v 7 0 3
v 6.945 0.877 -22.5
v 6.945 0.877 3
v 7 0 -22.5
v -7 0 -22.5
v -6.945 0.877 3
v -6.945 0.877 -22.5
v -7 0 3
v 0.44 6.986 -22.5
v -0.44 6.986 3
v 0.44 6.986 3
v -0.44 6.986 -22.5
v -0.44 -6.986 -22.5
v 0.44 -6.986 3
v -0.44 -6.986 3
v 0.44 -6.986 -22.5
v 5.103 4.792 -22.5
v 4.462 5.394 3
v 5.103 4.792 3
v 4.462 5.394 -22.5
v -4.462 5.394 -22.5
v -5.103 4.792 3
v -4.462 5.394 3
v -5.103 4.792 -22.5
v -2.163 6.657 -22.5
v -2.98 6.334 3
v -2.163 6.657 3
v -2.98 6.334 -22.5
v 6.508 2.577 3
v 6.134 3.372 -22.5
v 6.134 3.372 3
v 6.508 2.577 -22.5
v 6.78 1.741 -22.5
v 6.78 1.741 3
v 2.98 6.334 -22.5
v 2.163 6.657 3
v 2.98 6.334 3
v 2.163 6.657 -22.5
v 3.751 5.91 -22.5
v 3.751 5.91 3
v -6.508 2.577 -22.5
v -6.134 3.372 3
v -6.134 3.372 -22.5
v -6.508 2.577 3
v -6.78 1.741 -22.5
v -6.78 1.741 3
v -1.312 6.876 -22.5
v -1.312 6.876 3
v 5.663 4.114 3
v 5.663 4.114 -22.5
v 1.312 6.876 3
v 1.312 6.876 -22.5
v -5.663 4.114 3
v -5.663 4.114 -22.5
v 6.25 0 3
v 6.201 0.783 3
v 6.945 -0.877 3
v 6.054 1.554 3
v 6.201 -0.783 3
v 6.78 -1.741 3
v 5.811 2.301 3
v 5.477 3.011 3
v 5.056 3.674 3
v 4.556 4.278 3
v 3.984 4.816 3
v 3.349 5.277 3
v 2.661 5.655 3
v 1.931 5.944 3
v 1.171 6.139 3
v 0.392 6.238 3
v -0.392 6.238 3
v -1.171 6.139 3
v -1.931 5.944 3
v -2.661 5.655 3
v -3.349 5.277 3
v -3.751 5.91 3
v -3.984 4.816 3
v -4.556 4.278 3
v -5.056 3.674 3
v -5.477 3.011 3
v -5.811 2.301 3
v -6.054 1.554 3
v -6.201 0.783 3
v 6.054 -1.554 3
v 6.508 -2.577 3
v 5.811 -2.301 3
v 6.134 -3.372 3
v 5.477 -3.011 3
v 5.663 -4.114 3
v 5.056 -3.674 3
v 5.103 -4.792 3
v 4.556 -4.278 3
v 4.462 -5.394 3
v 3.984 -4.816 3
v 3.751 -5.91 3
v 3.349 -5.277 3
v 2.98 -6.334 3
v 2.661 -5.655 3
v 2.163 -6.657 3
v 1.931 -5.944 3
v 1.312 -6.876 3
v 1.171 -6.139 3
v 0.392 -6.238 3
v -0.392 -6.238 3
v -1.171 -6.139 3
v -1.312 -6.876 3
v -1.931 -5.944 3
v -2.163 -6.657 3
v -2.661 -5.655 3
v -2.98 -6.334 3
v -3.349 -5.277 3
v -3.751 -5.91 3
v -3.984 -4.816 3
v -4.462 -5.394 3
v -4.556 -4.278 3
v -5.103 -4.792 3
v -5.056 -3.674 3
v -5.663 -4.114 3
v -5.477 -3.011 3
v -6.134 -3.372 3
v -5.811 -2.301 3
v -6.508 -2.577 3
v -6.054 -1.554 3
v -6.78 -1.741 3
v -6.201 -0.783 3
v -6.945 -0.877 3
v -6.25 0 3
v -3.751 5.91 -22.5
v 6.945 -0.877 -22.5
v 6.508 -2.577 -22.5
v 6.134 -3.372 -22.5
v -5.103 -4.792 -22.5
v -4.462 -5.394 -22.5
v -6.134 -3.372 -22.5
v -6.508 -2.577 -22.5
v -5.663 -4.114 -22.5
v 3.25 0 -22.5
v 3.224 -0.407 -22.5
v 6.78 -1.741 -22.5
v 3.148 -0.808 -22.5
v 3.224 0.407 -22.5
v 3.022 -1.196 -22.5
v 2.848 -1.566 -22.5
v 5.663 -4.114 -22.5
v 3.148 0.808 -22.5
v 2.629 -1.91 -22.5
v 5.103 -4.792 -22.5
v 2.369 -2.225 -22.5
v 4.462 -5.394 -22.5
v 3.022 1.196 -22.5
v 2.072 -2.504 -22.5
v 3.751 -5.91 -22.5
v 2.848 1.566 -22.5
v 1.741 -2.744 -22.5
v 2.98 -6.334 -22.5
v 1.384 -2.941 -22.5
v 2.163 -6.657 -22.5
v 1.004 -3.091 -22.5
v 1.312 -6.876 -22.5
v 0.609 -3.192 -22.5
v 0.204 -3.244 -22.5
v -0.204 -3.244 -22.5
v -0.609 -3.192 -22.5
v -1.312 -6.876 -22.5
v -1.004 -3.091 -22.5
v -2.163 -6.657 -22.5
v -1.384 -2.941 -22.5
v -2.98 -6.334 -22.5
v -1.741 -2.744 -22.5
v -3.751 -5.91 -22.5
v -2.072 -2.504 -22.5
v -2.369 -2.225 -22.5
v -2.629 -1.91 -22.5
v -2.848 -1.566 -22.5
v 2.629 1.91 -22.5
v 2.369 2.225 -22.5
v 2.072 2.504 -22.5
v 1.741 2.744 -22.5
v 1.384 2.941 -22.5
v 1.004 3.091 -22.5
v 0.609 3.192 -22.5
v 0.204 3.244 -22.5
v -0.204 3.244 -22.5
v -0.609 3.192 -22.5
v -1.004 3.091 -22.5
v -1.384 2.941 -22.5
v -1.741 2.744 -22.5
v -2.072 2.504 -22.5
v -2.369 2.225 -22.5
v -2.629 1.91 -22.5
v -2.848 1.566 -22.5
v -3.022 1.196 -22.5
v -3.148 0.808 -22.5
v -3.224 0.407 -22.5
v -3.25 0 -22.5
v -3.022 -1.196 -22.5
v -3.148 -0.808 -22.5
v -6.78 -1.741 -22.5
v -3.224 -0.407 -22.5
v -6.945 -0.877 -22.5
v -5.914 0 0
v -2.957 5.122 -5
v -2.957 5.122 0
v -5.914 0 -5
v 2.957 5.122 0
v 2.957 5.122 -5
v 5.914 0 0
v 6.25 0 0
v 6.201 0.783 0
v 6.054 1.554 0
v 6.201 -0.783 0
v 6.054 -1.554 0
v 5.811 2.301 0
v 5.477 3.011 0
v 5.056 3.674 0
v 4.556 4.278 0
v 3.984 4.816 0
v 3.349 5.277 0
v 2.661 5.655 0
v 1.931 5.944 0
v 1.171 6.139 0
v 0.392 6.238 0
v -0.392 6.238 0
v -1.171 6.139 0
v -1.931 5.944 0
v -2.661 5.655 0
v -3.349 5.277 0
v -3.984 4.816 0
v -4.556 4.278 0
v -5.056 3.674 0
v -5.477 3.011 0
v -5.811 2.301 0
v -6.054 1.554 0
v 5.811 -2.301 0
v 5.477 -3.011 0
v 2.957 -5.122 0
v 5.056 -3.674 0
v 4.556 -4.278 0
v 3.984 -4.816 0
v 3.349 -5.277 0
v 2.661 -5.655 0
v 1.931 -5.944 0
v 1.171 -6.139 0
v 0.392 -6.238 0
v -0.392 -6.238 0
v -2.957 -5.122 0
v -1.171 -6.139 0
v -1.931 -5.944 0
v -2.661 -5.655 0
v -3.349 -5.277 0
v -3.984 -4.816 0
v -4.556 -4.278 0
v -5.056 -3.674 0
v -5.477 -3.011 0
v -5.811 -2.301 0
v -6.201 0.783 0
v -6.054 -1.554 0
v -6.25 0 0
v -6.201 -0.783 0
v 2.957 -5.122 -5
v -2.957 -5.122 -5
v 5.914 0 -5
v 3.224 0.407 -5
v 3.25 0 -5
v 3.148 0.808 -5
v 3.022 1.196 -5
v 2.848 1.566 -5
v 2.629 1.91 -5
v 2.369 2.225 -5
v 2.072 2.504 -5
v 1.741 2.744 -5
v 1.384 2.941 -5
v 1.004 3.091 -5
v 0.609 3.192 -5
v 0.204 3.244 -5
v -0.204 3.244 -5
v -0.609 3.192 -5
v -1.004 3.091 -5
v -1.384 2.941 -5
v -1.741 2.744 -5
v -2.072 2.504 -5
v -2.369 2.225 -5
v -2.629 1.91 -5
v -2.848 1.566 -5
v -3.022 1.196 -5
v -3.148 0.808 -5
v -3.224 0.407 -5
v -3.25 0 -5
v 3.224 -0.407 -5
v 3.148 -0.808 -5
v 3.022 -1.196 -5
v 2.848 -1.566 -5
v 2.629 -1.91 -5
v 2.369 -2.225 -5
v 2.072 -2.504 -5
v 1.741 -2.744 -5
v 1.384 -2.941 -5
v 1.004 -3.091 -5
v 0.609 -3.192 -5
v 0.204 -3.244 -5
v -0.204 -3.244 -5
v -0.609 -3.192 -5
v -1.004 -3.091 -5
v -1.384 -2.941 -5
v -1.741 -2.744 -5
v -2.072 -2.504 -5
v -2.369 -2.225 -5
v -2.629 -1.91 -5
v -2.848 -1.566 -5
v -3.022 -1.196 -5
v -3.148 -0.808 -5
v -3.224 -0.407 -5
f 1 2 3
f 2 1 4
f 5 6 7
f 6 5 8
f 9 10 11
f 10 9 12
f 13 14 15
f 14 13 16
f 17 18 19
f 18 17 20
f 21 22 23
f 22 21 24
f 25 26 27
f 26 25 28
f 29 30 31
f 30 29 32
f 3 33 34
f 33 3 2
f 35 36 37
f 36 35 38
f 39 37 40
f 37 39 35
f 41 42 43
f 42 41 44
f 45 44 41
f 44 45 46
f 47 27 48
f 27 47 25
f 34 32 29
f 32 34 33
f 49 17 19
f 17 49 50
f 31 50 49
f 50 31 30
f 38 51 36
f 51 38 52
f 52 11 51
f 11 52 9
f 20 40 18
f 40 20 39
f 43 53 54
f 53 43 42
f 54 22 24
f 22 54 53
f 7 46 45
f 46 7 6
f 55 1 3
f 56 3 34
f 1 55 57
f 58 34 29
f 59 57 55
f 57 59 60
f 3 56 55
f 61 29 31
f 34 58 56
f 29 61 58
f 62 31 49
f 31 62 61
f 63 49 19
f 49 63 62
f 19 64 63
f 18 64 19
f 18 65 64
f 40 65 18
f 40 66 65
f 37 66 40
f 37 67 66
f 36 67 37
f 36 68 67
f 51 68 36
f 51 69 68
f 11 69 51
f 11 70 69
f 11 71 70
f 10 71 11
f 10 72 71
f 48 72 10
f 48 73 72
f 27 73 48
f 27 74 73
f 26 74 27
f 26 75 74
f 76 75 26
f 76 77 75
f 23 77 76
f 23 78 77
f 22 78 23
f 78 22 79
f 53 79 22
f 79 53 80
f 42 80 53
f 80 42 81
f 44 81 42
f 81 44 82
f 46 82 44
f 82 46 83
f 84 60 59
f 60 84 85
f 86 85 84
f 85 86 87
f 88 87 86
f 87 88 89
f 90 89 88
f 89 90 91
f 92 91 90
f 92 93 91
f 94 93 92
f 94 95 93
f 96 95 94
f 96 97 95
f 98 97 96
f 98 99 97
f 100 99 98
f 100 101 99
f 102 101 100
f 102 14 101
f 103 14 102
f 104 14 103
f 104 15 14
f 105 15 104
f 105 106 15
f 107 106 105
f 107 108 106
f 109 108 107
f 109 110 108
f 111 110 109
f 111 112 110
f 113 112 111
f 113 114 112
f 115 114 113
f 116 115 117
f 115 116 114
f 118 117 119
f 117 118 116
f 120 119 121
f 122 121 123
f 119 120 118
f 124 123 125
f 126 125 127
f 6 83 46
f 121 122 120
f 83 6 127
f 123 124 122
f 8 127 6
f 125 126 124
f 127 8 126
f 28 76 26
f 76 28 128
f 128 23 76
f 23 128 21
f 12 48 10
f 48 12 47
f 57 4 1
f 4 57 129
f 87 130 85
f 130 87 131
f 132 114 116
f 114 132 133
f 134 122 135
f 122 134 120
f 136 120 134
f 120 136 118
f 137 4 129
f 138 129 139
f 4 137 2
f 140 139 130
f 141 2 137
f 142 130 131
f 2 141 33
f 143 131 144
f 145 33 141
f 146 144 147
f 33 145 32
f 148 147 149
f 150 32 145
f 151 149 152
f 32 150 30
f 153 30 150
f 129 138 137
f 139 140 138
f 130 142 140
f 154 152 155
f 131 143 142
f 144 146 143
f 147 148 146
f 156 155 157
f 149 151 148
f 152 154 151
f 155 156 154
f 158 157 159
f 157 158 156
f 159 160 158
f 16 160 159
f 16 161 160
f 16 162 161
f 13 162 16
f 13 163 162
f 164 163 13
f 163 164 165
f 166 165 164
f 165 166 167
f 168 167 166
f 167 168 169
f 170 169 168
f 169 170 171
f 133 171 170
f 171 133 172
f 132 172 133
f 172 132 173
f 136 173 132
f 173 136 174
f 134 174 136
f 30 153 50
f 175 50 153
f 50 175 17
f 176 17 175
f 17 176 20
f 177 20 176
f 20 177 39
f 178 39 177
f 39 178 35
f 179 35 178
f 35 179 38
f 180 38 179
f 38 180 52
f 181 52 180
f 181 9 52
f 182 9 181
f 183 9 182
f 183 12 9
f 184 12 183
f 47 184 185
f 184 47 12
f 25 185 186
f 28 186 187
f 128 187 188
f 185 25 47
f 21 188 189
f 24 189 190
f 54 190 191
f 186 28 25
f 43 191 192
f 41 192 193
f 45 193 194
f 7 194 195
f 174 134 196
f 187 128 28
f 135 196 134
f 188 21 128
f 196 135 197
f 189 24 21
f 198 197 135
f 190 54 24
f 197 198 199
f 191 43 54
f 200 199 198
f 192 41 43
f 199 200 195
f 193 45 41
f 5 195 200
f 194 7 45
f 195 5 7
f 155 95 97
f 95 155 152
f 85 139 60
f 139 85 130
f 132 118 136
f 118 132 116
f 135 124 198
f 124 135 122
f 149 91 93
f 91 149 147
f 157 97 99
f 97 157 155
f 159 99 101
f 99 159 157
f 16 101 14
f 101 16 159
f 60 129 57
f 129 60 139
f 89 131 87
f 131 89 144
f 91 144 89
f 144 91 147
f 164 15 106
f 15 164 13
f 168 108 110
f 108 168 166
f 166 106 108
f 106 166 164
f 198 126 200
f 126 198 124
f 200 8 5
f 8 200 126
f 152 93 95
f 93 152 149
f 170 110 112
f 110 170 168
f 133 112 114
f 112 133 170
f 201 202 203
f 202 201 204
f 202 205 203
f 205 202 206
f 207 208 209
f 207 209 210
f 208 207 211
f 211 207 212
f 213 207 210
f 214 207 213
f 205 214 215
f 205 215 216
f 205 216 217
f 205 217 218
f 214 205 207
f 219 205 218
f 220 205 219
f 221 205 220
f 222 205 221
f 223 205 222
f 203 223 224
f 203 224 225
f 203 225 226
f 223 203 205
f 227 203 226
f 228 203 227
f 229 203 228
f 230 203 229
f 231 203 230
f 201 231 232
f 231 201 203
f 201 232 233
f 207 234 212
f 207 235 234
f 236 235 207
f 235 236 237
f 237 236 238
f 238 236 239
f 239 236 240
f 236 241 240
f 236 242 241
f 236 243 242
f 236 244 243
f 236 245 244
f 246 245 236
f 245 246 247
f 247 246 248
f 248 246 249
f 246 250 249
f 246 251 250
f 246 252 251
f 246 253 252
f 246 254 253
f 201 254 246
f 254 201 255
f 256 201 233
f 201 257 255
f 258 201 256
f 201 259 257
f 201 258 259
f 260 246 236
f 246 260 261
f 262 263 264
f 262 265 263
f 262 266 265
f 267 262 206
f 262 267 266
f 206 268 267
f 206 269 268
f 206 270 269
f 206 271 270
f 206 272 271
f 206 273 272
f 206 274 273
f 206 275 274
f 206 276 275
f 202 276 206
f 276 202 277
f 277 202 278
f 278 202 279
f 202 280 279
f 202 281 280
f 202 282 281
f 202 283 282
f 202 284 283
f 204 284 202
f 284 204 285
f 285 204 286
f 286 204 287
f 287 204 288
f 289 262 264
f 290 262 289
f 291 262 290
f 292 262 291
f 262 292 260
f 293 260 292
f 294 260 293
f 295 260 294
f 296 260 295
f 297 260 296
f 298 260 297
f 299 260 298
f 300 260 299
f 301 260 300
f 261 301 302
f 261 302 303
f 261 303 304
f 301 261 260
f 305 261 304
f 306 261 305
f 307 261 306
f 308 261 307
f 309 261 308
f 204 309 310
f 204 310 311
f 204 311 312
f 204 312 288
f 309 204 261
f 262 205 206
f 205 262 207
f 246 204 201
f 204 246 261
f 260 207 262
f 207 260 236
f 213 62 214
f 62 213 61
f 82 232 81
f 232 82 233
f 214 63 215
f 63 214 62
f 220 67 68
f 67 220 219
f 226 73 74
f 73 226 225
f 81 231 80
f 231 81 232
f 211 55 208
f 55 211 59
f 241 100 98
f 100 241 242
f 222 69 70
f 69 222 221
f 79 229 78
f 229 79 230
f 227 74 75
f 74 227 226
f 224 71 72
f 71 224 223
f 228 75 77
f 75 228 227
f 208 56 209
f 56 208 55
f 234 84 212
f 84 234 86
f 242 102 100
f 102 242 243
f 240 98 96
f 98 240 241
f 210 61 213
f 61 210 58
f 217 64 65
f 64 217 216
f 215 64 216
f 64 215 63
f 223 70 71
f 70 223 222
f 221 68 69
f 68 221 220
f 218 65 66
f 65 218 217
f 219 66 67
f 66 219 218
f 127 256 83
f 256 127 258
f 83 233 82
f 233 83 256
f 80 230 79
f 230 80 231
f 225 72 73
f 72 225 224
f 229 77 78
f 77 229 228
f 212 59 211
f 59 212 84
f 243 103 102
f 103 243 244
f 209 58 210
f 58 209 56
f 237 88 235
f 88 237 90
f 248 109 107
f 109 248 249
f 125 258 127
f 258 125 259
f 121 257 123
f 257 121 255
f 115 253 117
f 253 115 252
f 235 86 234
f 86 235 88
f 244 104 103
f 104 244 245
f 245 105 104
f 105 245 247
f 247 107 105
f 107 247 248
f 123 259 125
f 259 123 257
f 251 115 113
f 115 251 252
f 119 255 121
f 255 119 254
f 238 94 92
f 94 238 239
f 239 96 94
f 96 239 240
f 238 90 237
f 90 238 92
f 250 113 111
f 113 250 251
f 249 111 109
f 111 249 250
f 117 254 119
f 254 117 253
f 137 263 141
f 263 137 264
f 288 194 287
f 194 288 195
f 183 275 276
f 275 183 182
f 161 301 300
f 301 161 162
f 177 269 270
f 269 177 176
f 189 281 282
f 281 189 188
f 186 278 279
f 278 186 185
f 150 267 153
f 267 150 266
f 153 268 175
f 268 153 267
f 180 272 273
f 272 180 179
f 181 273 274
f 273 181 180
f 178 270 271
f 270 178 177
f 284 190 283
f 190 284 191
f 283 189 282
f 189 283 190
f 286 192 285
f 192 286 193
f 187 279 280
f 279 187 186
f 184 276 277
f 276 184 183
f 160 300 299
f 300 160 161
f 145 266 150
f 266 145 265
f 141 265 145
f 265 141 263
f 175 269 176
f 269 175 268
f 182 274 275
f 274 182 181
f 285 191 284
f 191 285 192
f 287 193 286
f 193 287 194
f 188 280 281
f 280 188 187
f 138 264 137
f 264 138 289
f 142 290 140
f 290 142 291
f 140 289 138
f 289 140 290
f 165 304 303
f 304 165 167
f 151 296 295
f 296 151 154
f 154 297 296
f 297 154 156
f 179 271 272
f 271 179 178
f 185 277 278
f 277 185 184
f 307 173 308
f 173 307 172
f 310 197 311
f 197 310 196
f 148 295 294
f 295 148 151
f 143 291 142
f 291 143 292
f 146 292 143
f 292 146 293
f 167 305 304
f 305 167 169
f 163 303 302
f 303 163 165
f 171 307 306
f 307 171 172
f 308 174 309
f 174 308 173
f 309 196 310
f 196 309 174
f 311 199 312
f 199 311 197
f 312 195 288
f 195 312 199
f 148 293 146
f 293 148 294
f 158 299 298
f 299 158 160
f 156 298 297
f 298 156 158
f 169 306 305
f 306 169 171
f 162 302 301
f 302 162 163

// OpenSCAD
$fn = 50;

difference() {
	union() {
		translate(v = [0, 0, -22.5]) {
			cylinder(h = 25.5, r = 7.0);
		}
		#translate(v = [0, 0, -24.0]) {
			cylinder(h = 24, r = 2.875);
		}
	}
	union() {
		translate(v = [0, 0, 0]) {
			rotate(a = [0, 0, 0]) {
				difference() {
					union() {
						translate(v = [0, 0, -5]) {
							linear_extrude(height = 5) {
								polygon(points = [[5.914249999999999, 0.0], [2.957125, 5.1218907443321156], [-2.9571249999999982, 5.1218907443321156], [-5.914249999999999, 7.242867331857232e-16], [-2.9571250000000022, -5.121890744332115], [2.9571249999999956, -5.121890744332118]]);
							}
						}
					}
					union();
				}
			}
		}
		#cylinder(h = 3, r = 6.25);
		#translate(v = [0, 0, -100.0]) {
			cylinder(h = 200, r = 3.25);
		}
	}
}
